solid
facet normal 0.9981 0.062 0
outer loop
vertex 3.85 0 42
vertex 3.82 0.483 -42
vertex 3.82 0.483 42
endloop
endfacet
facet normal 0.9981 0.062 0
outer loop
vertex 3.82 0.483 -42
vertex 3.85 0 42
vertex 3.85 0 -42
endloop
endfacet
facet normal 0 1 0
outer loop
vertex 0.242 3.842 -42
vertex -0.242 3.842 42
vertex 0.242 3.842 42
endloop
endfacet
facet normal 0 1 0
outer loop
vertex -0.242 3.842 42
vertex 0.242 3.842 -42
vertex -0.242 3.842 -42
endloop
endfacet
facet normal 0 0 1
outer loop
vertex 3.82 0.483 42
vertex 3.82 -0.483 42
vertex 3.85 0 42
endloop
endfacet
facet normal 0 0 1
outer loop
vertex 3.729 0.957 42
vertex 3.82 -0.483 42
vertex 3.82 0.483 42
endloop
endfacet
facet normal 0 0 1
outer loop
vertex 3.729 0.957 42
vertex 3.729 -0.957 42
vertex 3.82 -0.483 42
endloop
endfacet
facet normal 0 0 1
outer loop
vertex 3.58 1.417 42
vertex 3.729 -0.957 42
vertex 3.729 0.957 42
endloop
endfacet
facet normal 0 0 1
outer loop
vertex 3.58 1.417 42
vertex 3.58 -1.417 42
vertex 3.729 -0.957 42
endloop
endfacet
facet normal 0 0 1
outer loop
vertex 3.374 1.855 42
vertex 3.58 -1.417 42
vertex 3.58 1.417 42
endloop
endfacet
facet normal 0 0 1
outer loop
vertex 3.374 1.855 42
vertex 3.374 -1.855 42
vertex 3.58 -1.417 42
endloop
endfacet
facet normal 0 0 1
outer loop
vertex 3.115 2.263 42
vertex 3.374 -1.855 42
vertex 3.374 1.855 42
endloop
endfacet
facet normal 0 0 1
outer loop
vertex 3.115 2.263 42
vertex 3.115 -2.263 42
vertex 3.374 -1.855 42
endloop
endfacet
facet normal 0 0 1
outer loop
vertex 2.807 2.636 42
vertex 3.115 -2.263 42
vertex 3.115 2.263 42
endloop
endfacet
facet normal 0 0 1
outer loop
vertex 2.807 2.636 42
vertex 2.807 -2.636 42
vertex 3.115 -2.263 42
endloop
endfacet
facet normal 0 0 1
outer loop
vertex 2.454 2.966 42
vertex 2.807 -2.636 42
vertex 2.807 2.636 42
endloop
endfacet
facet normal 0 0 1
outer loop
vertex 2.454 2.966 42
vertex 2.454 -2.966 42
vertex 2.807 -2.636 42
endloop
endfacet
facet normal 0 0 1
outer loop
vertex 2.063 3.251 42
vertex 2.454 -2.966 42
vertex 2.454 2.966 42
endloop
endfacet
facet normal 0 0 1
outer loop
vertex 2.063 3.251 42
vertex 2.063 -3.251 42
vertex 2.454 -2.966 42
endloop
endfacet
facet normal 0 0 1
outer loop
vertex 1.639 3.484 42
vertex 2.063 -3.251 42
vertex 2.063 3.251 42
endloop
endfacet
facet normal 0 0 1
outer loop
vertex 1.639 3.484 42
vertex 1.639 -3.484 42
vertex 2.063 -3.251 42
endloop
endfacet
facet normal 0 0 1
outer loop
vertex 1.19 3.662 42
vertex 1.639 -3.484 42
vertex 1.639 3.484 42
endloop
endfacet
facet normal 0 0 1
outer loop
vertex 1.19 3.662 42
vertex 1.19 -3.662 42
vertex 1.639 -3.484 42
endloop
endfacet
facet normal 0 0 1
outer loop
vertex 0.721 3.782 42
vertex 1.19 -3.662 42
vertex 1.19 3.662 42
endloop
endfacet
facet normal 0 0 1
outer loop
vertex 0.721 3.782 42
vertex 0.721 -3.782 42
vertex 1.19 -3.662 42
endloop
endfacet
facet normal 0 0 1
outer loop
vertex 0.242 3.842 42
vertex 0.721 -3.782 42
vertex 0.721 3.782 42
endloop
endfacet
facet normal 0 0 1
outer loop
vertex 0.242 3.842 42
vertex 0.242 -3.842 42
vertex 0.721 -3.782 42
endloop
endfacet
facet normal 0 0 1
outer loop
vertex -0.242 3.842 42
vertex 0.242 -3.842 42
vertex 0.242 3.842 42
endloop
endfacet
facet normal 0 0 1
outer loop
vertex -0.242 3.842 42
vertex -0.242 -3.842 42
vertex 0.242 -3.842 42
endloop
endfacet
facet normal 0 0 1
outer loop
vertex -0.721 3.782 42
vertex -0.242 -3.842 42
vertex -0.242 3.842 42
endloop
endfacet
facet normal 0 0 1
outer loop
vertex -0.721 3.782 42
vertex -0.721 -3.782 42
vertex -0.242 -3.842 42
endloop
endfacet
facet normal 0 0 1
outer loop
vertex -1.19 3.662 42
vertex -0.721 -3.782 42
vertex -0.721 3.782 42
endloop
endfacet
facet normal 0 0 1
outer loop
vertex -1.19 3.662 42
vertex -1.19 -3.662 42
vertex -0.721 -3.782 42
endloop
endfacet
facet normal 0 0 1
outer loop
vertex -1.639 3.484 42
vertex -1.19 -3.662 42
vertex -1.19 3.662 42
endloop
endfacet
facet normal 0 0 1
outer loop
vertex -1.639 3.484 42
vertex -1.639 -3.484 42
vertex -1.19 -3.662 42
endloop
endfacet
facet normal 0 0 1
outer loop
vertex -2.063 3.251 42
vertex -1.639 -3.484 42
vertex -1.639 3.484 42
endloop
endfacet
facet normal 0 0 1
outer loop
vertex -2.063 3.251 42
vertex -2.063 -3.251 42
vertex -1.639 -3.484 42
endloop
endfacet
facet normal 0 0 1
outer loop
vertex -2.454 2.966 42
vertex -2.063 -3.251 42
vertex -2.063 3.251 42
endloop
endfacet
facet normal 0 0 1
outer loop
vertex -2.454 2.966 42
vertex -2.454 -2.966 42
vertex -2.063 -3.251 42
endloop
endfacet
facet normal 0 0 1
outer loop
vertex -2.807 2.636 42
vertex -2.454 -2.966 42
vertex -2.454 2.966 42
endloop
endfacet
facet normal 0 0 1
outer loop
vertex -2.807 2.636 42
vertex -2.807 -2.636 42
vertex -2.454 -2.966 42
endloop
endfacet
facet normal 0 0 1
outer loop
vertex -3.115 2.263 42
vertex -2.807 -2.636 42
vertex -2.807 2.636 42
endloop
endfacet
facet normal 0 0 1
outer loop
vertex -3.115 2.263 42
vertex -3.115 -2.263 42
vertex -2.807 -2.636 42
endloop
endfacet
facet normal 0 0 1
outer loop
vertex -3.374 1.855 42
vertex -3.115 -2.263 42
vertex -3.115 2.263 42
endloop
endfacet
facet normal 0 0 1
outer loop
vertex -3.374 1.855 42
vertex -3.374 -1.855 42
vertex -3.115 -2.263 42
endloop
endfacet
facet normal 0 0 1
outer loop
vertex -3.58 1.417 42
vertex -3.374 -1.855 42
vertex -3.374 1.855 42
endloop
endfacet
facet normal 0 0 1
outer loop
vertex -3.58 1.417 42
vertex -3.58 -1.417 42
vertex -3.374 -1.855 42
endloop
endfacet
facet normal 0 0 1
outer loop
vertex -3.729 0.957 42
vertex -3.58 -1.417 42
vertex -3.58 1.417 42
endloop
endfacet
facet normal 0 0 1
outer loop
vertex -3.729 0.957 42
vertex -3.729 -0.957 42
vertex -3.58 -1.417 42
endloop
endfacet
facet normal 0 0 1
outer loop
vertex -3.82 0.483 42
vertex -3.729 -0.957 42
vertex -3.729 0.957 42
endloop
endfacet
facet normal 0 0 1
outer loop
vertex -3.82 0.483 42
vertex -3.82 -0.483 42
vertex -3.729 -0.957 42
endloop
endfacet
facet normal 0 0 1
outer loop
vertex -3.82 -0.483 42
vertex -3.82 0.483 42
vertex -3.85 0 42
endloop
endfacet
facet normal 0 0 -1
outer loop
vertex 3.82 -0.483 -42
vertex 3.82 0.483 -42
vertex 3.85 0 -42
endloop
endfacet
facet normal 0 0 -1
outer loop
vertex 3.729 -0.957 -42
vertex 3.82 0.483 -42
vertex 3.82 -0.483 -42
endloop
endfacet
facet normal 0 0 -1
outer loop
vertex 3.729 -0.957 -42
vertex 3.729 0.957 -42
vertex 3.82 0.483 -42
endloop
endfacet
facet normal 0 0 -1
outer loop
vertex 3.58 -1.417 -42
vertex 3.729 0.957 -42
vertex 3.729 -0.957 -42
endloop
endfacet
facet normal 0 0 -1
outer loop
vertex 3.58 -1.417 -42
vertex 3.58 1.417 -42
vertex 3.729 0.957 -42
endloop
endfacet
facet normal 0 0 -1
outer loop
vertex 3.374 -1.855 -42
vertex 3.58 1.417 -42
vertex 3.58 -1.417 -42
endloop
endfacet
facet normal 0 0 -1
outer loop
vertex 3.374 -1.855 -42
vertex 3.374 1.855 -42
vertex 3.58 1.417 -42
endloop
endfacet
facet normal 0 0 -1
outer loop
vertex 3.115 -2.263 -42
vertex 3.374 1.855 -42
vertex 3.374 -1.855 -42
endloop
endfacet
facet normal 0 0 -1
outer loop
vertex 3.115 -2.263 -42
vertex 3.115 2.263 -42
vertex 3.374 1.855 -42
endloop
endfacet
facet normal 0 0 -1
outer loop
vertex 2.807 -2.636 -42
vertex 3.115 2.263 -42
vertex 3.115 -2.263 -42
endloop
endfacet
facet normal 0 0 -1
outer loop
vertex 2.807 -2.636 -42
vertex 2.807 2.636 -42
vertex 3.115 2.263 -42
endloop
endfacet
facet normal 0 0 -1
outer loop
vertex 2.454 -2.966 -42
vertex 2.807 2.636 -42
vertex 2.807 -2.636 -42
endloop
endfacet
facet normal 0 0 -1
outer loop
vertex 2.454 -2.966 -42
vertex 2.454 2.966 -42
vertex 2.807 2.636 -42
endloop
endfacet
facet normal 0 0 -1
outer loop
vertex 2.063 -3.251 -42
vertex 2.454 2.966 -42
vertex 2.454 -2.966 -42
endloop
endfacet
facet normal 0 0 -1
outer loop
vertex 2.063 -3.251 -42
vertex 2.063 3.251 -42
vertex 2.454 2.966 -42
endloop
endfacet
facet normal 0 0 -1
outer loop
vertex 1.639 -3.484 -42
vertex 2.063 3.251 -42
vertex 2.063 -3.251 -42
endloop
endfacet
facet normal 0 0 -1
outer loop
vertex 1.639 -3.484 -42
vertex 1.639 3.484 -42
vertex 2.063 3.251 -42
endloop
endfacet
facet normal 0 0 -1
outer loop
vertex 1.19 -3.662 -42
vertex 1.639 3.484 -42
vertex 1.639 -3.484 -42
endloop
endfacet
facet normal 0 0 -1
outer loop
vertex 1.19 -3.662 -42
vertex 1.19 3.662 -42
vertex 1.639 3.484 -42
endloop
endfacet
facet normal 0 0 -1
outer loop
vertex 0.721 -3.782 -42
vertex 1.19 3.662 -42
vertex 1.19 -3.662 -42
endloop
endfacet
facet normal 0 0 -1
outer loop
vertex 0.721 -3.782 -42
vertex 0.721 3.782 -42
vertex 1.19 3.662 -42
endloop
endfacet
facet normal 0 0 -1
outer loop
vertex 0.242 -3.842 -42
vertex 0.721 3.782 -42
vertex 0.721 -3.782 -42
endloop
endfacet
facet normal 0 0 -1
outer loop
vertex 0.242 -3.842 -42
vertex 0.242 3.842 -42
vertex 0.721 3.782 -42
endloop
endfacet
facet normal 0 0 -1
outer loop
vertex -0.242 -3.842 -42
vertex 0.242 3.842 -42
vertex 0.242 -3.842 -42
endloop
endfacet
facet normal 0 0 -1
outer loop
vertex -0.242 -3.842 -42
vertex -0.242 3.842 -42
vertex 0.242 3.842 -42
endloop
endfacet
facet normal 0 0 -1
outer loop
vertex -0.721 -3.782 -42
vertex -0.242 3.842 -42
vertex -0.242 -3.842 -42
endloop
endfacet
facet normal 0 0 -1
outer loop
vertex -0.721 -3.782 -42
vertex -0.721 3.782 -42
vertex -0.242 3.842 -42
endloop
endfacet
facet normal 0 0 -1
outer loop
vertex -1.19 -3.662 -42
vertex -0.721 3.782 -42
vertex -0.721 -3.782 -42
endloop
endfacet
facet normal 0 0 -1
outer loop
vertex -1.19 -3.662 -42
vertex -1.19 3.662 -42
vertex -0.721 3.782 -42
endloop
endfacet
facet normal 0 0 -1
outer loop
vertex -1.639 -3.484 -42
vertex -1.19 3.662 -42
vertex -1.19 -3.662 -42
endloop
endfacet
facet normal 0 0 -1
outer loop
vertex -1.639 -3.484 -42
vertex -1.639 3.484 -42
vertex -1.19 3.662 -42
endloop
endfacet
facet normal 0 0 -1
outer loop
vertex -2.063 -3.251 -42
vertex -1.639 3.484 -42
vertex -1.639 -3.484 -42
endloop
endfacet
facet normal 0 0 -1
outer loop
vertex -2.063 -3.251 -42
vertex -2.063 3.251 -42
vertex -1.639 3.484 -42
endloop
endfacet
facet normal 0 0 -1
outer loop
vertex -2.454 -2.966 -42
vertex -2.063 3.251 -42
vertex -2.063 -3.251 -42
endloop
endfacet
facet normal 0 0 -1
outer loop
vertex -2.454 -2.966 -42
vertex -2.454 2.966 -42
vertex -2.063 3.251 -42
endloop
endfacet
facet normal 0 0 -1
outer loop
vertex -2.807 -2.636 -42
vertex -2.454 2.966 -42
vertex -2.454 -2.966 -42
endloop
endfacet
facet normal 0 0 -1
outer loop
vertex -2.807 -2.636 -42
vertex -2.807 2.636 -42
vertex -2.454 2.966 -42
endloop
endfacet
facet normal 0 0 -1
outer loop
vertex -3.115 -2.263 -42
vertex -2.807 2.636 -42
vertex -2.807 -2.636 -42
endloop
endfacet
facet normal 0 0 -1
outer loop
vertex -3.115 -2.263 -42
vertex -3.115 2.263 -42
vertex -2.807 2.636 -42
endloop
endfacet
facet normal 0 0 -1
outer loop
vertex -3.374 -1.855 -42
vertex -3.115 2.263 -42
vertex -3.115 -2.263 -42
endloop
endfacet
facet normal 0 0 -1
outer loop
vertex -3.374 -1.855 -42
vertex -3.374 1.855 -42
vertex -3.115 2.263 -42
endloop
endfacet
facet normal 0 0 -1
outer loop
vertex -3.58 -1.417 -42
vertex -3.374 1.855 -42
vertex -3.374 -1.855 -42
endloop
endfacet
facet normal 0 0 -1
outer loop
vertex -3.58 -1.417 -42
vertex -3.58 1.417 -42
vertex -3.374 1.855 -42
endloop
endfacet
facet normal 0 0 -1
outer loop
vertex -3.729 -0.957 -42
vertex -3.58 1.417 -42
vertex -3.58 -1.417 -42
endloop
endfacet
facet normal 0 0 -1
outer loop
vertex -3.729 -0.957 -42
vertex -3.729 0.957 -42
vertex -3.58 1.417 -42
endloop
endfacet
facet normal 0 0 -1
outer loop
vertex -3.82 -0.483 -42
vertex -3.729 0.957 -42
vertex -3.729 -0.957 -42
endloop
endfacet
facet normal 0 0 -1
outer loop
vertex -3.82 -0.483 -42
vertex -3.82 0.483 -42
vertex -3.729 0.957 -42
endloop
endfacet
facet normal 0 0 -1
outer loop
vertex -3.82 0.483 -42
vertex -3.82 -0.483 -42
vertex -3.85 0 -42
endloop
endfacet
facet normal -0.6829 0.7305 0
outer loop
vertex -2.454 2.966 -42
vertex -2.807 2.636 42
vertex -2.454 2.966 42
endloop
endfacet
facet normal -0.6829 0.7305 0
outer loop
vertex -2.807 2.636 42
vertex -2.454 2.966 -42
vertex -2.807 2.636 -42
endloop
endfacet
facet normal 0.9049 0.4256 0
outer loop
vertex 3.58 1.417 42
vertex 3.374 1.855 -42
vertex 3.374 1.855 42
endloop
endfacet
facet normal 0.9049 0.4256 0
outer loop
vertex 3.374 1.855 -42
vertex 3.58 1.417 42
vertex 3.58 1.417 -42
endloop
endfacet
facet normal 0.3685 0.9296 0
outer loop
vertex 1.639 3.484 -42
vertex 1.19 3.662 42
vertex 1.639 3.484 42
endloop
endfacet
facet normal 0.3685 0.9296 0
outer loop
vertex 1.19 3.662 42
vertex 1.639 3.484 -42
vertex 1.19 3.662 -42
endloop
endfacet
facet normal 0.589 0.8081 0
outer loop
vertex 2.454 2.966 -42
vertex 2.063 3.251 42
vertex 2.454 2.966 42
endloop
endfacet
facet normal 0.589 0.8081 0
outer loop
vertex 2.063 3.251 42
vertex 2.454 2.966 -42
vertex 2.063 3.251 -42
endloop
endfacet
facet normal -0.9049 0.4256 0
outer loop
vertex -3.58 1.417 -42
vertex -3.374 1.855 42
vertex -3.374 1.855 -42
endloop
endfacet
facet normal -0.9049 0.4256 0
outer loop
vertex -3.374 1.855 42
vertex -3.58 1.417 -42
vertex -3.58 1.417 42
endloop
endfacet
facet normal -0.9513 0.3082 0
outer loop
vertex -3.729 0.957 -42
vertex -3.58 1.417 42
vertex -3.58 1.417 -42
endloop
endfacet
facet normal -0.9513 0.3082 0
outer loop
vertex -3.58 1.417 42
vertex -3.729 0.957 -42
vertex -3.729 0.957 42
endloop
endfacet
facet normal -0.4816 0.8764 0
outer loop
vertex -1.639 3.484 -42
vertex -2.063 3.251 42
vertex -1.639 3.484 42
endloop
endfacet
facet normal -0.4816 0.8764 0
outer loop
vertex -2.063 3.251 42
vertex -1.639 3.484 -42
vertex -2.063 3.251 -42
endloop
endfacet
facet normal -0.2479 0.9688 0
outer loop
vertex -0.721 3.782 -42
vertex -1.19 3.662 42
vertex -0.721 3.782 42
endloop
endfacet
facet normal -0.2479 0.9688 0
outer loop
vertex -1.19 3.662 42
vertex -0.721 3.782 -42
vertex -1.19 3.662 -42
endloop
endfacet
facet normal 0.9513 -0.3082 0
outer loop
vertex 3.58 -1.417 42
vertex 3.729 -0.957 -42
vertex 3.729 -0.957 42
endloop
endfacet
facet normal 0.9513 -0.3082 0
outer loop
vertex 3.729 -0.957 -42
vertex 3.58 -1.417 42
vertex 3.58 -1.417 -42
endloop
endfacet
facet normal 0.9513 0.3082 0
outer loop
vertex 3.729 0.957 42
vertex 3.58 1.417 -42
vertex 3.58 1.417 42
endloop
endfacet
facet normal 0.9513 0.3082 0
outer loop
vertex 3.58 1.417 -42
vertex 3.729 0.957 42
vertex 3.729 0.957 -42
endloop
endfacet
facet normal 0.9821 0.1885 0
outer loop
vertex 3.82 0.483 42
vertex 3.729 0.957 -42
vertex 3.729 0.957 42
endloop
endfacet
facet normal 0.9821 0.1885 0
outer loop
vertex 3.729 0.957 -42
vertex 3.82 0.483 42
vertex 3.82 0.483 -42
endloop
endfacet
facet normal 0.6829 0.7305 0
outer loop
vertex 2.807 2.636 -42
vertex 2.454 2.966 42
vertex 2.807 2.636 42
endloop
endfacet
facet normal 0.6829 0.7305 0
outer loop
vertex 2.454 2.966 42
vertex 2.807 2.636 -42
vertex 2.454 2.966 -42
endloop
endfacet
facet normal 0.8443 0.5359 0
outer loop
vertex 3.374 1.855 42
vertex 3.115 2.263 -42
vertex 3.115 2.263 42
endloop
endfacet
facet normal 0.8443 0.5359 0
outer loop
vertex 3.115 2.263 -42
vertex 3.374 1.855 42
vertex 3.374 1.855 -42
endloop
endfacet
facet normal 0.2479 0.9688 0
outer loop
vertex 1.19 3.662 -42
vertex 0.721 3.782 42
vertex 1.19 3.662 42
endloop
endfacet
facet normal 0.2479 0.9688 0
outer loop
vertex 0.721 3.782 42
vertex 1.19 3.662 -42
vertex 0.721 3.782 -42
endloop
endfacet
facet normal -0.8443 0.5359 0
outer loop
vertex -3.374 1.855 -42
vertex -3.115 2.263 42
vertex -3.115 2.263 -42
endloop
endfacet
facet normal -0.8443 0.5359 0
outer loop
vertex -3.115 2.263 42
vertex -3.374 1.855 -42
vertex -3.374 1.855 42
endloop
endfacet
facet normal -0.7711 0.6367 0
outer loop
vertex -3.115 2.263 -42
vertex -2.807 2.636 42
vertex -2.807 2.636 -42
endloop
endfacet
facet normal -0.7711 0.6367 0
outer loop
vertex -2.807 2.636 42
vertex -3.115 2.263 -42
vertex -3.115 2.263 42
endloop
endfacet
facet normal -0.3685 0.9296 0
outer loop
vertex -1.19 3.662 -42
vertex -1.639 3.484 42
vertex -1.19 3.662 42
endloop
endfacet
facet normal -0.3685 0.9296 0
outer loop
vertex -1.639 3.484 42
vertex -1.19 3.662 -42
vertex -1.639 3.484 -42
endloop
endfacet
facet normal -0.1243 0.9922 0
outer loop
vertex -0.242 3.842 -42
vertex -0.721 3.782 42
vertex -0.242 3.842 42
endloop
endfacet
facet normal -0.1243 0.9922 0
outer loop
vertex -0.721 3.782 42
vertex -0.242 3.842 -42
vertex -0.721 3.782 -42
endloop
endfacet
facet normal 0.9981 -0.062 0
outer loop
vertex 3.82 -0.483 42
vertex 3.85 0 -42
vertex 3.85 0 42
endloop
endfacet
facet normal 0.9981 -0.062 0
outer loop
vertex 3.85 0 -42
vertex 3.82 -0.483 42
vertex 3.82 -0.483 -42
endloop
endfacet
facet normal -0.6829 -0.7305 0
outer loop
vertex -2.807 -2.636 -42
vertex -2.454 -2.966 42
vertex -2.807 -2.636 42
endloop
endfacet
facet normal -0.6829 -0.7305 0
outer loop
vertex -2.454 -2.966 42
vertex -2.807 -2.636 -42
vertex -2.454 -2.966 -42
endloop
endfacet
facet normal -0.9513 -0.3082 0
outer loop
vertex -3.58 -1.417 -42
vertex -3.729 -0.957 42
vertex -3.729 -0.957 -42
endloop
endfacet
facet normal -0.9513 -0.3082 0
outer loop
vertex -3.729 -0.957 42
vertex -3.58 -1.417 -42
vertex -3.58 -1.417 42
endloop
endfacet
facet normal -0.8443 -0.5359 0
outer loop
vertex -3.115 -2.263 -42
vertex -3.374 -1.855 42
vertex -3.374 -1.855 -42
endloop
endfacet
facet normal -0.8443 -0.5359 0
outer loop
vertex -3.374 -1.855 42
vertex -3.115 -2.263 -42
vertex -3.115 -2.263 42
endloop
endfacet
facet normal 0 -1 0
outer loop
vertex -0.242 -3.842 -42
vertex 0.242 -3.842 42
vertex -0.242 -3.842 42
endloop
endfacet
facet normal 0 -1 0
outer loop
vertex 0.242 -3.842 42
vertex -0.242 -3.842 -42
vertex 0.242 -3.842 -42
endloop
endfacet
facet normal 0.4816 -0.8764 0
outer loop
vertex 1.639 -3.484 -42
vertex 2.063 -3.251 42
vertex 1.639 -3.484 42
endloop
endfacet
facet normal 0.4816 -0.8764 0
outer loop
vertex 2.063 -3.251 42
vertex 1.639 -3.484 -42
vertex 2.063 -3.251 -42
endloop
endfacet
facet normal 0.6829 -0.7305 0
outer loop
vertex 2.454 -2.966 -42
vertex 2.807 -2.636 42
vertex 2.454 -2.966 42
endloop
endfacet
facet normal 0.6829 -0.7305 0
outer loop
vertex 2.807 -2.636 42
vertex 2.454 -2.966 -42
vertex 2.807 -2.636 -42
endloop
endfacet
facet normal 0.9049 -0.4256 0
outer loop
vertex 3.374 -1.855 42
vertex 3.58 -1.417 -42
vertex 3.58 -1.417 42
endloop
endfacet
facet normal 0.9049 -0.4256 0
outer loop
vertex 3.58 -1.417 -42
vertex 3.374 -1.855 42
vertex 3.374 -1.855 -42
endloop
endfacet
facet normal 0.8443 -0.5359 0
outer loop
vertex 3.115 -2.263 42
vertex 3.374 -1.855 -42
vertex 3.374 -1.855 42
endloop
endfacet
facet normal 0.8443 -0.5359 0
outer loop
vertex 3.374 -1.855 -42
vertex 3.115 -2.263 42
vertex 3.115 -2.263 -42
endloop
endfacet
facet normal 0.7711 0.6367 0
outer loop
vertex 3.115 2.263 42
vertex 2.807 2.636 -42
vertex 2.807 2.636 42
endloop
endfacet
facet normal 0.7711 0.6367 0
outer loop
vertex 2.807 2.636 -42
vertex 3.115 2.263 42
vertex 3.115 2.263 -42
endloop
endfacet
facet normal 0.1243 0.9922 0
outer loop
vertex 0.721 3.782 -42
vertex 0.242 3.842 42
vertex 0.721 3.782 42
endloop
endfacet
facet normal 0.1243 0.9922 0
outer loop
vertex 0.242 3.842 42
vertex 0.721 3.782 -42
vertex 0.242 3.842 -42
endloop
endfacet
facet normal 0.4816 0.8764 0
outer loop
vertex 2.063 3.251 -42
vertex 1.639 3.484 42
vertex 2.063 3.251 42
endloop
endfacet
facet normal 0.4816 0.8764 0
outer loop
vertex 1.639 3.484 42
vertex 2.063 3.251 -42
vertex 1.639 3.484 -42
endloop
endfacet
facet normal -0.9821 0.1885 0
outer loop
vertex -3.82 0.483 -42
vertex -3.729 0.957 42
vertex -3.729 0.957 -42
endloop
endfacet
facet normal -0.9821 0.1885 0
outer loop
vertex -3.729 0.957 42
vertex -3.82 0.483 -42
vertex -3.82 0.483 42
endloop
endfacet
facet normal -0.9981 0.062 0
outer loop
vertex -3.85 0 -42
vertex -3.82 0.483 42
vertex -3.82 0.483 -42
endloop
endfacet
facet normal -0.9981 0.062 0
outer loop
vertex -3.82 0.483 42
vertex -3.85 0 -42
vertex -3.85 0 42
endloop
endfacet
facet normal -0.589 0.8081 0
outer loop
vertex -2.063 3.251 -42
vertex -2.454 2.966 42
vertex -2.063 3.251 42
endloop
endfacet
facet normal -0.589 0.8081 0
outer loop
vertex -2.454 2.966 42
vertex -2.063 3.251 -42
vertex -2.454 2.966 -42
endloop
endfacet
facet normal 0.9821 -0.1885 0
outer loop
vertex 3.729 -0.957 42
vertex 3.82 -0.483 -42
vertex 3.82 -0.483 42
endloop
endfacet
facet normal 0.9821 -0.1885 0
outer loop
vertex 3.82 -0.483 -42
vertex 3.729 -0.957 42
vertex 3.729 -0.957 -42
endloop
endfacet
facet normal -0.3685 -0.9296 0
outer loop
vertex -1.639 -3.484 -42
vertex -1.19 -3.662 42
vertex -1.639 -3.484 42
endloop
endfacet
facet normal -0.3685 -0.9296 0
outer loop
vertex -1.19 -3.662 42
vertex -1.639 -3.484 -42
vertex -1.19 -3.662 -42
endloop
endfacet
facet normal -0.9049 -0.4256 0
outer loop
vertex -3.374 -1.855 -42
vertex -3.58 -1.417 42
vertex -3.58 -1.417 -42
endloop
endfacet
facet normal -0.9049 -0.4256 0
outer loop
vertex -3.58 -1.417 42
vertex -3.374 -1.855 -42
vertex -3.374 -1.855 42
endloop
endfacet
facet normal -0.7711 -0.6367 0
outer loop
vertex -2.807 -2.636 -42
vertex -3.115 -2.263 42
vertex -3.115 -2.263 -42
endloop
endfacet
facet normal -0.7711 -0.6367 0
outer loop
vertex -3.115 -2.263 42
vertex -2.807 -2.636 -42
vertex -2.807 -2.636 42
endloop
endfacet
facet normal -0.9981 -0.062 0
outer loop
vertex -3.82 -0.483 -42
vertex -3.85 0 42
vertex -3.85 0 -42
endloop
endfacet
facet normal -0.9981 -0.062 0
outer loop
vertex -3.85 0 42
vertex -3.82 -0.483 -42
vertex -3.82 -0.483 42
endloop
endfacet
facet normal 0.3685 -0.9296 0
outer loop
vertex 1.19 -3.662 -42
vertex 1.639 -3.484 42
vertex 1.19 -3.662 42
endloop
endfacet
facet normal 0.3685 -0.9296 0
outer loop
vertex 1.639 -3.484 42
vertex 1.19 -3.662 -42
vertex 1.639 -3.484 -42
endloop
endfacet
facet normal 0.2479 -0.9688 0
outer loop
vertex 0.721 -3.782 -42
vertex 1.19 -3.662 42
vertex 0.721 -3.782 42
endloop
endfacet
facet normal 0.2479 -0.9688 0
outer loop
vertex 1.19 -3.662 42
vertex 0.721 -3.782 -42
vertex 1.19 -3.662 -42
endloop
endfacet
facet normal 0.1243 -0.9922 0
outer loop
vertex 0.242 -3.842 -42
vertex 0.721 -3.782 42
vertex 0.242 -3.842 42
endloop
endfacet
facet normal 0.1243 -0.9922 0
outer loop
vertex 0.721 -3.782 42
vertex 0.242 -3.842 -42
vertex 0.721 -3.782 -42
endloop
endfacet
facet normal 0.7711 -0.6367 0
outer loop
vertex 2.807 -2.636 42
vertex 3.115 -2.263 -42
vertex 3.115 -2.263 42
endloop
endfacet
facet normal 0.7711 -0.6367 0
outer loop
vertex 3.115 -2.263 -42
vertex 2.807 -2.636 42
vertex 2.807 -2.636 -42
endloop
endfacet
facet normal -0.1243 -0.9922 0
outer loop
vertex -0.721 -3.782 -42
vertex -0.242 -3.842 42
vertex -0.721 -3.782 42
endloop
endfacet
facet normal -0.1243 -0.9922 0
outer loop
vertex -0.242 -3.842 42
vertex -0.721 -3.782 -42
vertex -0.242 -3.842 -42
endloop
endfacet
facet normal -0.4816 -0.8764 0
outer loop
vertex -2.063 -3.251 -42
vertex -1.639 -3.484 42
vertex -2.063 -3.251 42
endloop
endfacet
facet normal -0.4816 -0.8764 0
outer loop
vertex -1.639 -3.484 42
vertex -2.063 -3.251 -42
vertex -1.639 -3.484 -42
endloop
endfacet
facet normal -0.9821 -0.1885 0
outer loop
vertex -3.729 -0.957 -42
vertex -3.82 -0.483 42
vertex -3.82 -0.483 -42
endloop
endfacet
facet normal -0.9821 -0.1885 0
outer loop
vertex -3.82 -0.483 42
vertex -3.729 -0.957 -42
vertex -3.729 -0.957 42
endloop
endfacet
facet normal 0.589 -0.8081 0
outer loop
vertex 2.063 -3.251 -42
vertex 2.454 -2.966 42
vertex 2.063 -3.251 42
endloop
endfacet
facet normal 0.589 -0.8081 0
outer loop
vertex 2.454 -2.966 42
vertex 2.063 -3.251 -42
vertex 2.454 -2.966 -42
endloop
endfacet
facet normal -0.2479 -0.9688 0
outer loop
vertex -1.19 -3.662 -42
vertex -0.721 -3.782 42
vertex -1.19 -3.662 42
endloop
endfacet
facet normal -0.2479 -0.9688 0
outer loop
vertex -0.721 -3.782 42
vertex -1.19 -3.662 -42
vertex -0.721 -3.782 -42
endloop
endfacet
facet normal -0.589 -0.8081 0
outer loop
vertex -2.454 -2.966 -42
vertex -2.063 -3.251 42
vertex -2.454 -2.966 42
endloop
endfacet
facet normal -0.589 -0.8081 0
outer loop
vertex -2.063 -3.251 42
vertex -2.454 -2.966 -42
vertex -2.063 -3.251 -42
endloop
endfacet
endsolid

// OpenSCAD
$fn = 50;


difference() {
	union() {
		translate(v = [0, 0, -42.0000000000]) {
			cylinder(h = 84, r = 3.8500000000);
		}
	}
	union() {
		translate(v = [0, 0, -100.0000000000]) {
			cylinder(h = 200, r = 0);
		}
	}
}
